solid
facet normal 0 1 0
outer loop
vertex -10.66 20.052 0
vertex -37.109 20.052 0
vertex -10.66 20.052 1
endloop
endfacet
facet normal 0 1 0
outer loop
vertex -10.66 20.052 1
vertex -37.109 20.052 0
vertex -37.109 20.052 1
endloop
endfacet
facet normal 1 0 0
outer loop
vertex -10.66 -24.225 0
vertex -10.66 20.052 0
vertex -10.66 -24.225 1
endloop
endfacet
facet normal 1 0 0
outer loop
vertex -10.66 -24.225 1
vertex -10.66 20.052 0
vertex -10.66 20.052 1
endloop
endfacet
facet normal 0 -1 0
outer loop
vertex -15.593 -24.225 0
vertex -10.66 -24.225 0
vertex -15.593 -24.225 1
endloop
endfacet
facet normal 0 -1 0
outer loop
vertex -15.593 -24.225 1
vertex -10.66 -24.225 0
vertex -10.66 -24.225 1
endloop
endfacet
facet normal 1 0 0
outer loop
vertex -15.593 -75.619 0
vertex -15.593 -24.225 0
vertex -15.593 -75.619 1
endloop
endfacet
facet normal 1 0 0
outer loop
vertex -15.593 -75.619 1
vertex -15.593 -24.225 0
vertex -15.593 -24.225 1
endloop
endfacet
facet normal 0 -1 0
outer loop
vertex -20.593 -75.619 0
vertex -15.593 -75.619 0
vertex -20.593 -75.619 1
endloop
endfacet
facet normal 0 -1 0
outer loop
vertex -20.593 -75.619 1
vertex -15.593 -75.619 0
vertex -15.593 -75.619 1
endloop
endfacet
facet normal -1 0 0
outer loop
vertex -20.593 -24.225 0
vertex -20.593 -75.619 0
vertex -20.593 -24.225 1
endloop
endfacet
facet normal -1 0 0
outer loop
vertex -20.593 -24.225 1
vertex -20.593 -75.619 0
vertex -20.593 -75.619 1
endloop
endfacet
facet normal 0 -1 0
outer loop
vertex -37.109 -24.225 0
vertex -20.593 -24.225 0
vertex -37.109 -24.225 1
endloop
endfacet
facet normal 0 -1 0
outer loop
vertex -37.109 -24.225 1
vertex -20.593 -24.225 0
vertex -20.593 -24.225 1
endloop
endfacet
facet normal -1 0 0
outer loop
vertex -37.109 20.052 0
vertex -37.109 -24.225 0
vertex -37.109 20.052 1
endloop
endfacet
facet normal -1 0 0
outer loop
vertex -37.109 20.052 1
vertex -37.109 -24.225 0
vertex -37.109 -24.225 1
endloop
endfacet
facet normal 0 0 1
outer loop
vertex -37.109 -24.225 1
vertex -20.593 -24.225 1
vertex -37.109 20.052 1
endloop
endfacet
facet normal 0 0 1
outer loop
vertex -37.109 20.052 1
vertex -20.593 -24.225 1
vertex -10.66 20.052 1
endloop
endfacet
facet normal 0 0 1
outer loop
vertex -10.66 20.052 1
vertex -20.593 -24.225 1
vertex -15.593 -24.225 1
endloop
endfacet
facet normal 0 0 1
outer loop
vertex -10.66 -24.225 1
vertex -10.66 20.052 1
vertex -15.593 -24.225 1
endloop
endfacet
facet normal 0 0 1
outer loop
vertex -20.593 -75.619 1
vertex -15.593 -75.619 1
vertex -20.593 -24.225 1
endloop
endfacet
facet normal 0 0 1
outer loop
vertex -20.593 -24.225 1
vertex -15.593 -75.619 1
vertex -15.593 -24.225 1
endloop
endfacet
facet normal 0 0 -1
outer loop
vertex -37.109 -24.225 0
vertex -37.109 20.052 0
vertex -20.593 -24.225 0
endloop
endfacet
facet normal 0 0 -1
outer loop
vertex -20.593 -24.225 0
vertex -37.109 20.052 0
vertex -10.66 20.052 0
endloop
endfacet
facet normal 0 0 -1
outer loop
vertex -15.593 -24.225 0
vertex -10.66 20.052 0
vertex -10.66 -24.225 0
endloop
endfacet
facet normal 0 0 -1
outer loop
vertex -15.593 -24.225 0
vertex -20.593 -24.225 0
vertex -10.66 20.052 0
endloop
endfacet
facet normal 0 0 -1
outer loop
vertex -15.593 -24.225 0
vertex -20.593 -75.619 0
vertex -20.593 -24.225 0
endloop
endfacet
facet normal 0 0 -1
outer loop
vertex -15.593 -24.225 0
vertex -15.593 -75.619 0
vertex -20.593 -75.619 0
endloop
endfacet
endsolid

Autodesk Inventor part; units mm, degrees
ref_plane "YZ Plane" through (0, 0, 0) normal (1, 0, 0) x (0, 1, 0)
ref_plane "XZ Plane" through (0, 0, 0) normal (0, 1, 0) x (-1, 0, 0)
ref_plane "XY Plane" through (0, 0, 0) normal (0, 0, 1) x (1, 0, 0)
sketch "Esboço1" plane through (0, 0, 0) normal (0, 0, 1) x (1, 0, 0)
  line L0 (-37.1093, 20.0517) -> (-10.6595, 20.0517)
  line L1 (-10.6595, 20.0517) -> (-37.1093, 20.0517)
  line L2 (-10.6595, 20.0517) -> (-10.6595, -24.2254)
  line L3 (-10.6595, -24.2254) -> (-15.5932, -24.2254)
  line L4 (-15.5932, -24.2254) -> (-15.5932, -75.6194)
  line L5 (-15.5932, -24.2254) -> (-15.5932, -75.6194)
  line L6 (-15.5932, -75.6194) -> (-20.5932, -75.6194)
  line L7 (-20.5932, -75.6194) -> (-20.5932, -24.2254)
  line L8 (-20.5932, -75.6194) -> (-20.5932, -24.2254)
  line L9 (-20.5932, -24.2254) -> (-37.1093, -24.2254)
  line L10 (-20.5932, -24.2254) -> (-37.1093, -24.2254)
  line L11 (-37.1093, -24.2254) -> (-37.1093, 20.0517)
  point P0 (0, 0)
  point P1 (0, 0)
extrude "Extrusão1" add sketch "Esboço1" along normal blind 1
properties part number "Tampa de trás 10-06-2016"
